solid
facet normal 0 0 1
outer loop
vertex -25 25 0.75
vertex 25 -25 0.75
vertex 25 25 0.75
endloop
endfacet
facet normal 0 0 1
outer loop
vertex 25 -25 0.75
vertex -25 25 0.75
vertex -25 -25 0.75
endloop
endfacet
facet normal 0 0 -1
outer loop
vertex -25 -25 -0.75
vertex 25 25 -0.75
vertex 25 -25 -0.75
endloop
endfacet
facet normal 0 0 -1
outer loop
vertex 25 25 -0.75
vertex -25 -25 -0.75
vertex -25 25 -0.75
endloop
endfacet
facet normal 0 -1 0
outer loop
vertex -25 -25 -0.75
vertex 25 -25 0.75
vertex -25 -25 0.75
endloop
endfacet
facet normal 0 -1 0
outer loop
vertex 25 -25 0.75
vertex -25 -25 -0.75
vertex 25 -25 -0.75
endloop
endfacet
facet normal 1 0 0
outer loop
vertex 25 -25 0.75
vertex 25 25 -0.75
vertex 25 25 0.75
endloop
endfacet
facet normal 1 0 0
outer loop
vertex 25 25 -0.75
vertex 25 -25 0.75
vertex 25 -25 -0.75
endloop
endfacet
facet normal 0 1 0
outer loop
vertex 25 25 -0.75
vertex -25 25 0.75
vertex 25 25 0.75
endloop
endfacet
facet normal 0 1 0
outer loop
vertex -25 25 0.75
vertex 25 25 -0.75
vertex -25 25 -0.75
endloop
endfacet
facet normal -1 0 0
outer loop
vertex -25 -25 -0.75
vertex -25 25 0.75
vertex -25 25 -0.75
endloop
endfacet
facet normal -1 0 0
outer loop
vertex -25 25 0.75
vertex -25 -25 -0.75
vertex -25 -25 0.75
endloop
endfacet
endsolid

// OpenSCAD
// Parameters for the flat square plate
plate_size = 50; // Length of one side of the square
plate_thickness = 1.5; // Adjusted thickness to match the original model

// Function to create a flat square plate
module flat_square_plate() {
    cube([plate_size, plate_size, plate_thickness], center = true);
}

// Generate the flat square plate
flat_square_plate();

// Notes:
// 1. Adjusted `plate_thickness` from 2 to 1.5 to match the minimal thickness of the original model.
// 2. Ensured the edges are straight and sharp by using the `cube` function without any rounding.
// 3. Flattened the surface by ensuring the cube dimensions are precise and consistent.
// 4. Verified the orientation and alignment by centering the cube using `center = true` to match the original model’s straight and flat positioning.
